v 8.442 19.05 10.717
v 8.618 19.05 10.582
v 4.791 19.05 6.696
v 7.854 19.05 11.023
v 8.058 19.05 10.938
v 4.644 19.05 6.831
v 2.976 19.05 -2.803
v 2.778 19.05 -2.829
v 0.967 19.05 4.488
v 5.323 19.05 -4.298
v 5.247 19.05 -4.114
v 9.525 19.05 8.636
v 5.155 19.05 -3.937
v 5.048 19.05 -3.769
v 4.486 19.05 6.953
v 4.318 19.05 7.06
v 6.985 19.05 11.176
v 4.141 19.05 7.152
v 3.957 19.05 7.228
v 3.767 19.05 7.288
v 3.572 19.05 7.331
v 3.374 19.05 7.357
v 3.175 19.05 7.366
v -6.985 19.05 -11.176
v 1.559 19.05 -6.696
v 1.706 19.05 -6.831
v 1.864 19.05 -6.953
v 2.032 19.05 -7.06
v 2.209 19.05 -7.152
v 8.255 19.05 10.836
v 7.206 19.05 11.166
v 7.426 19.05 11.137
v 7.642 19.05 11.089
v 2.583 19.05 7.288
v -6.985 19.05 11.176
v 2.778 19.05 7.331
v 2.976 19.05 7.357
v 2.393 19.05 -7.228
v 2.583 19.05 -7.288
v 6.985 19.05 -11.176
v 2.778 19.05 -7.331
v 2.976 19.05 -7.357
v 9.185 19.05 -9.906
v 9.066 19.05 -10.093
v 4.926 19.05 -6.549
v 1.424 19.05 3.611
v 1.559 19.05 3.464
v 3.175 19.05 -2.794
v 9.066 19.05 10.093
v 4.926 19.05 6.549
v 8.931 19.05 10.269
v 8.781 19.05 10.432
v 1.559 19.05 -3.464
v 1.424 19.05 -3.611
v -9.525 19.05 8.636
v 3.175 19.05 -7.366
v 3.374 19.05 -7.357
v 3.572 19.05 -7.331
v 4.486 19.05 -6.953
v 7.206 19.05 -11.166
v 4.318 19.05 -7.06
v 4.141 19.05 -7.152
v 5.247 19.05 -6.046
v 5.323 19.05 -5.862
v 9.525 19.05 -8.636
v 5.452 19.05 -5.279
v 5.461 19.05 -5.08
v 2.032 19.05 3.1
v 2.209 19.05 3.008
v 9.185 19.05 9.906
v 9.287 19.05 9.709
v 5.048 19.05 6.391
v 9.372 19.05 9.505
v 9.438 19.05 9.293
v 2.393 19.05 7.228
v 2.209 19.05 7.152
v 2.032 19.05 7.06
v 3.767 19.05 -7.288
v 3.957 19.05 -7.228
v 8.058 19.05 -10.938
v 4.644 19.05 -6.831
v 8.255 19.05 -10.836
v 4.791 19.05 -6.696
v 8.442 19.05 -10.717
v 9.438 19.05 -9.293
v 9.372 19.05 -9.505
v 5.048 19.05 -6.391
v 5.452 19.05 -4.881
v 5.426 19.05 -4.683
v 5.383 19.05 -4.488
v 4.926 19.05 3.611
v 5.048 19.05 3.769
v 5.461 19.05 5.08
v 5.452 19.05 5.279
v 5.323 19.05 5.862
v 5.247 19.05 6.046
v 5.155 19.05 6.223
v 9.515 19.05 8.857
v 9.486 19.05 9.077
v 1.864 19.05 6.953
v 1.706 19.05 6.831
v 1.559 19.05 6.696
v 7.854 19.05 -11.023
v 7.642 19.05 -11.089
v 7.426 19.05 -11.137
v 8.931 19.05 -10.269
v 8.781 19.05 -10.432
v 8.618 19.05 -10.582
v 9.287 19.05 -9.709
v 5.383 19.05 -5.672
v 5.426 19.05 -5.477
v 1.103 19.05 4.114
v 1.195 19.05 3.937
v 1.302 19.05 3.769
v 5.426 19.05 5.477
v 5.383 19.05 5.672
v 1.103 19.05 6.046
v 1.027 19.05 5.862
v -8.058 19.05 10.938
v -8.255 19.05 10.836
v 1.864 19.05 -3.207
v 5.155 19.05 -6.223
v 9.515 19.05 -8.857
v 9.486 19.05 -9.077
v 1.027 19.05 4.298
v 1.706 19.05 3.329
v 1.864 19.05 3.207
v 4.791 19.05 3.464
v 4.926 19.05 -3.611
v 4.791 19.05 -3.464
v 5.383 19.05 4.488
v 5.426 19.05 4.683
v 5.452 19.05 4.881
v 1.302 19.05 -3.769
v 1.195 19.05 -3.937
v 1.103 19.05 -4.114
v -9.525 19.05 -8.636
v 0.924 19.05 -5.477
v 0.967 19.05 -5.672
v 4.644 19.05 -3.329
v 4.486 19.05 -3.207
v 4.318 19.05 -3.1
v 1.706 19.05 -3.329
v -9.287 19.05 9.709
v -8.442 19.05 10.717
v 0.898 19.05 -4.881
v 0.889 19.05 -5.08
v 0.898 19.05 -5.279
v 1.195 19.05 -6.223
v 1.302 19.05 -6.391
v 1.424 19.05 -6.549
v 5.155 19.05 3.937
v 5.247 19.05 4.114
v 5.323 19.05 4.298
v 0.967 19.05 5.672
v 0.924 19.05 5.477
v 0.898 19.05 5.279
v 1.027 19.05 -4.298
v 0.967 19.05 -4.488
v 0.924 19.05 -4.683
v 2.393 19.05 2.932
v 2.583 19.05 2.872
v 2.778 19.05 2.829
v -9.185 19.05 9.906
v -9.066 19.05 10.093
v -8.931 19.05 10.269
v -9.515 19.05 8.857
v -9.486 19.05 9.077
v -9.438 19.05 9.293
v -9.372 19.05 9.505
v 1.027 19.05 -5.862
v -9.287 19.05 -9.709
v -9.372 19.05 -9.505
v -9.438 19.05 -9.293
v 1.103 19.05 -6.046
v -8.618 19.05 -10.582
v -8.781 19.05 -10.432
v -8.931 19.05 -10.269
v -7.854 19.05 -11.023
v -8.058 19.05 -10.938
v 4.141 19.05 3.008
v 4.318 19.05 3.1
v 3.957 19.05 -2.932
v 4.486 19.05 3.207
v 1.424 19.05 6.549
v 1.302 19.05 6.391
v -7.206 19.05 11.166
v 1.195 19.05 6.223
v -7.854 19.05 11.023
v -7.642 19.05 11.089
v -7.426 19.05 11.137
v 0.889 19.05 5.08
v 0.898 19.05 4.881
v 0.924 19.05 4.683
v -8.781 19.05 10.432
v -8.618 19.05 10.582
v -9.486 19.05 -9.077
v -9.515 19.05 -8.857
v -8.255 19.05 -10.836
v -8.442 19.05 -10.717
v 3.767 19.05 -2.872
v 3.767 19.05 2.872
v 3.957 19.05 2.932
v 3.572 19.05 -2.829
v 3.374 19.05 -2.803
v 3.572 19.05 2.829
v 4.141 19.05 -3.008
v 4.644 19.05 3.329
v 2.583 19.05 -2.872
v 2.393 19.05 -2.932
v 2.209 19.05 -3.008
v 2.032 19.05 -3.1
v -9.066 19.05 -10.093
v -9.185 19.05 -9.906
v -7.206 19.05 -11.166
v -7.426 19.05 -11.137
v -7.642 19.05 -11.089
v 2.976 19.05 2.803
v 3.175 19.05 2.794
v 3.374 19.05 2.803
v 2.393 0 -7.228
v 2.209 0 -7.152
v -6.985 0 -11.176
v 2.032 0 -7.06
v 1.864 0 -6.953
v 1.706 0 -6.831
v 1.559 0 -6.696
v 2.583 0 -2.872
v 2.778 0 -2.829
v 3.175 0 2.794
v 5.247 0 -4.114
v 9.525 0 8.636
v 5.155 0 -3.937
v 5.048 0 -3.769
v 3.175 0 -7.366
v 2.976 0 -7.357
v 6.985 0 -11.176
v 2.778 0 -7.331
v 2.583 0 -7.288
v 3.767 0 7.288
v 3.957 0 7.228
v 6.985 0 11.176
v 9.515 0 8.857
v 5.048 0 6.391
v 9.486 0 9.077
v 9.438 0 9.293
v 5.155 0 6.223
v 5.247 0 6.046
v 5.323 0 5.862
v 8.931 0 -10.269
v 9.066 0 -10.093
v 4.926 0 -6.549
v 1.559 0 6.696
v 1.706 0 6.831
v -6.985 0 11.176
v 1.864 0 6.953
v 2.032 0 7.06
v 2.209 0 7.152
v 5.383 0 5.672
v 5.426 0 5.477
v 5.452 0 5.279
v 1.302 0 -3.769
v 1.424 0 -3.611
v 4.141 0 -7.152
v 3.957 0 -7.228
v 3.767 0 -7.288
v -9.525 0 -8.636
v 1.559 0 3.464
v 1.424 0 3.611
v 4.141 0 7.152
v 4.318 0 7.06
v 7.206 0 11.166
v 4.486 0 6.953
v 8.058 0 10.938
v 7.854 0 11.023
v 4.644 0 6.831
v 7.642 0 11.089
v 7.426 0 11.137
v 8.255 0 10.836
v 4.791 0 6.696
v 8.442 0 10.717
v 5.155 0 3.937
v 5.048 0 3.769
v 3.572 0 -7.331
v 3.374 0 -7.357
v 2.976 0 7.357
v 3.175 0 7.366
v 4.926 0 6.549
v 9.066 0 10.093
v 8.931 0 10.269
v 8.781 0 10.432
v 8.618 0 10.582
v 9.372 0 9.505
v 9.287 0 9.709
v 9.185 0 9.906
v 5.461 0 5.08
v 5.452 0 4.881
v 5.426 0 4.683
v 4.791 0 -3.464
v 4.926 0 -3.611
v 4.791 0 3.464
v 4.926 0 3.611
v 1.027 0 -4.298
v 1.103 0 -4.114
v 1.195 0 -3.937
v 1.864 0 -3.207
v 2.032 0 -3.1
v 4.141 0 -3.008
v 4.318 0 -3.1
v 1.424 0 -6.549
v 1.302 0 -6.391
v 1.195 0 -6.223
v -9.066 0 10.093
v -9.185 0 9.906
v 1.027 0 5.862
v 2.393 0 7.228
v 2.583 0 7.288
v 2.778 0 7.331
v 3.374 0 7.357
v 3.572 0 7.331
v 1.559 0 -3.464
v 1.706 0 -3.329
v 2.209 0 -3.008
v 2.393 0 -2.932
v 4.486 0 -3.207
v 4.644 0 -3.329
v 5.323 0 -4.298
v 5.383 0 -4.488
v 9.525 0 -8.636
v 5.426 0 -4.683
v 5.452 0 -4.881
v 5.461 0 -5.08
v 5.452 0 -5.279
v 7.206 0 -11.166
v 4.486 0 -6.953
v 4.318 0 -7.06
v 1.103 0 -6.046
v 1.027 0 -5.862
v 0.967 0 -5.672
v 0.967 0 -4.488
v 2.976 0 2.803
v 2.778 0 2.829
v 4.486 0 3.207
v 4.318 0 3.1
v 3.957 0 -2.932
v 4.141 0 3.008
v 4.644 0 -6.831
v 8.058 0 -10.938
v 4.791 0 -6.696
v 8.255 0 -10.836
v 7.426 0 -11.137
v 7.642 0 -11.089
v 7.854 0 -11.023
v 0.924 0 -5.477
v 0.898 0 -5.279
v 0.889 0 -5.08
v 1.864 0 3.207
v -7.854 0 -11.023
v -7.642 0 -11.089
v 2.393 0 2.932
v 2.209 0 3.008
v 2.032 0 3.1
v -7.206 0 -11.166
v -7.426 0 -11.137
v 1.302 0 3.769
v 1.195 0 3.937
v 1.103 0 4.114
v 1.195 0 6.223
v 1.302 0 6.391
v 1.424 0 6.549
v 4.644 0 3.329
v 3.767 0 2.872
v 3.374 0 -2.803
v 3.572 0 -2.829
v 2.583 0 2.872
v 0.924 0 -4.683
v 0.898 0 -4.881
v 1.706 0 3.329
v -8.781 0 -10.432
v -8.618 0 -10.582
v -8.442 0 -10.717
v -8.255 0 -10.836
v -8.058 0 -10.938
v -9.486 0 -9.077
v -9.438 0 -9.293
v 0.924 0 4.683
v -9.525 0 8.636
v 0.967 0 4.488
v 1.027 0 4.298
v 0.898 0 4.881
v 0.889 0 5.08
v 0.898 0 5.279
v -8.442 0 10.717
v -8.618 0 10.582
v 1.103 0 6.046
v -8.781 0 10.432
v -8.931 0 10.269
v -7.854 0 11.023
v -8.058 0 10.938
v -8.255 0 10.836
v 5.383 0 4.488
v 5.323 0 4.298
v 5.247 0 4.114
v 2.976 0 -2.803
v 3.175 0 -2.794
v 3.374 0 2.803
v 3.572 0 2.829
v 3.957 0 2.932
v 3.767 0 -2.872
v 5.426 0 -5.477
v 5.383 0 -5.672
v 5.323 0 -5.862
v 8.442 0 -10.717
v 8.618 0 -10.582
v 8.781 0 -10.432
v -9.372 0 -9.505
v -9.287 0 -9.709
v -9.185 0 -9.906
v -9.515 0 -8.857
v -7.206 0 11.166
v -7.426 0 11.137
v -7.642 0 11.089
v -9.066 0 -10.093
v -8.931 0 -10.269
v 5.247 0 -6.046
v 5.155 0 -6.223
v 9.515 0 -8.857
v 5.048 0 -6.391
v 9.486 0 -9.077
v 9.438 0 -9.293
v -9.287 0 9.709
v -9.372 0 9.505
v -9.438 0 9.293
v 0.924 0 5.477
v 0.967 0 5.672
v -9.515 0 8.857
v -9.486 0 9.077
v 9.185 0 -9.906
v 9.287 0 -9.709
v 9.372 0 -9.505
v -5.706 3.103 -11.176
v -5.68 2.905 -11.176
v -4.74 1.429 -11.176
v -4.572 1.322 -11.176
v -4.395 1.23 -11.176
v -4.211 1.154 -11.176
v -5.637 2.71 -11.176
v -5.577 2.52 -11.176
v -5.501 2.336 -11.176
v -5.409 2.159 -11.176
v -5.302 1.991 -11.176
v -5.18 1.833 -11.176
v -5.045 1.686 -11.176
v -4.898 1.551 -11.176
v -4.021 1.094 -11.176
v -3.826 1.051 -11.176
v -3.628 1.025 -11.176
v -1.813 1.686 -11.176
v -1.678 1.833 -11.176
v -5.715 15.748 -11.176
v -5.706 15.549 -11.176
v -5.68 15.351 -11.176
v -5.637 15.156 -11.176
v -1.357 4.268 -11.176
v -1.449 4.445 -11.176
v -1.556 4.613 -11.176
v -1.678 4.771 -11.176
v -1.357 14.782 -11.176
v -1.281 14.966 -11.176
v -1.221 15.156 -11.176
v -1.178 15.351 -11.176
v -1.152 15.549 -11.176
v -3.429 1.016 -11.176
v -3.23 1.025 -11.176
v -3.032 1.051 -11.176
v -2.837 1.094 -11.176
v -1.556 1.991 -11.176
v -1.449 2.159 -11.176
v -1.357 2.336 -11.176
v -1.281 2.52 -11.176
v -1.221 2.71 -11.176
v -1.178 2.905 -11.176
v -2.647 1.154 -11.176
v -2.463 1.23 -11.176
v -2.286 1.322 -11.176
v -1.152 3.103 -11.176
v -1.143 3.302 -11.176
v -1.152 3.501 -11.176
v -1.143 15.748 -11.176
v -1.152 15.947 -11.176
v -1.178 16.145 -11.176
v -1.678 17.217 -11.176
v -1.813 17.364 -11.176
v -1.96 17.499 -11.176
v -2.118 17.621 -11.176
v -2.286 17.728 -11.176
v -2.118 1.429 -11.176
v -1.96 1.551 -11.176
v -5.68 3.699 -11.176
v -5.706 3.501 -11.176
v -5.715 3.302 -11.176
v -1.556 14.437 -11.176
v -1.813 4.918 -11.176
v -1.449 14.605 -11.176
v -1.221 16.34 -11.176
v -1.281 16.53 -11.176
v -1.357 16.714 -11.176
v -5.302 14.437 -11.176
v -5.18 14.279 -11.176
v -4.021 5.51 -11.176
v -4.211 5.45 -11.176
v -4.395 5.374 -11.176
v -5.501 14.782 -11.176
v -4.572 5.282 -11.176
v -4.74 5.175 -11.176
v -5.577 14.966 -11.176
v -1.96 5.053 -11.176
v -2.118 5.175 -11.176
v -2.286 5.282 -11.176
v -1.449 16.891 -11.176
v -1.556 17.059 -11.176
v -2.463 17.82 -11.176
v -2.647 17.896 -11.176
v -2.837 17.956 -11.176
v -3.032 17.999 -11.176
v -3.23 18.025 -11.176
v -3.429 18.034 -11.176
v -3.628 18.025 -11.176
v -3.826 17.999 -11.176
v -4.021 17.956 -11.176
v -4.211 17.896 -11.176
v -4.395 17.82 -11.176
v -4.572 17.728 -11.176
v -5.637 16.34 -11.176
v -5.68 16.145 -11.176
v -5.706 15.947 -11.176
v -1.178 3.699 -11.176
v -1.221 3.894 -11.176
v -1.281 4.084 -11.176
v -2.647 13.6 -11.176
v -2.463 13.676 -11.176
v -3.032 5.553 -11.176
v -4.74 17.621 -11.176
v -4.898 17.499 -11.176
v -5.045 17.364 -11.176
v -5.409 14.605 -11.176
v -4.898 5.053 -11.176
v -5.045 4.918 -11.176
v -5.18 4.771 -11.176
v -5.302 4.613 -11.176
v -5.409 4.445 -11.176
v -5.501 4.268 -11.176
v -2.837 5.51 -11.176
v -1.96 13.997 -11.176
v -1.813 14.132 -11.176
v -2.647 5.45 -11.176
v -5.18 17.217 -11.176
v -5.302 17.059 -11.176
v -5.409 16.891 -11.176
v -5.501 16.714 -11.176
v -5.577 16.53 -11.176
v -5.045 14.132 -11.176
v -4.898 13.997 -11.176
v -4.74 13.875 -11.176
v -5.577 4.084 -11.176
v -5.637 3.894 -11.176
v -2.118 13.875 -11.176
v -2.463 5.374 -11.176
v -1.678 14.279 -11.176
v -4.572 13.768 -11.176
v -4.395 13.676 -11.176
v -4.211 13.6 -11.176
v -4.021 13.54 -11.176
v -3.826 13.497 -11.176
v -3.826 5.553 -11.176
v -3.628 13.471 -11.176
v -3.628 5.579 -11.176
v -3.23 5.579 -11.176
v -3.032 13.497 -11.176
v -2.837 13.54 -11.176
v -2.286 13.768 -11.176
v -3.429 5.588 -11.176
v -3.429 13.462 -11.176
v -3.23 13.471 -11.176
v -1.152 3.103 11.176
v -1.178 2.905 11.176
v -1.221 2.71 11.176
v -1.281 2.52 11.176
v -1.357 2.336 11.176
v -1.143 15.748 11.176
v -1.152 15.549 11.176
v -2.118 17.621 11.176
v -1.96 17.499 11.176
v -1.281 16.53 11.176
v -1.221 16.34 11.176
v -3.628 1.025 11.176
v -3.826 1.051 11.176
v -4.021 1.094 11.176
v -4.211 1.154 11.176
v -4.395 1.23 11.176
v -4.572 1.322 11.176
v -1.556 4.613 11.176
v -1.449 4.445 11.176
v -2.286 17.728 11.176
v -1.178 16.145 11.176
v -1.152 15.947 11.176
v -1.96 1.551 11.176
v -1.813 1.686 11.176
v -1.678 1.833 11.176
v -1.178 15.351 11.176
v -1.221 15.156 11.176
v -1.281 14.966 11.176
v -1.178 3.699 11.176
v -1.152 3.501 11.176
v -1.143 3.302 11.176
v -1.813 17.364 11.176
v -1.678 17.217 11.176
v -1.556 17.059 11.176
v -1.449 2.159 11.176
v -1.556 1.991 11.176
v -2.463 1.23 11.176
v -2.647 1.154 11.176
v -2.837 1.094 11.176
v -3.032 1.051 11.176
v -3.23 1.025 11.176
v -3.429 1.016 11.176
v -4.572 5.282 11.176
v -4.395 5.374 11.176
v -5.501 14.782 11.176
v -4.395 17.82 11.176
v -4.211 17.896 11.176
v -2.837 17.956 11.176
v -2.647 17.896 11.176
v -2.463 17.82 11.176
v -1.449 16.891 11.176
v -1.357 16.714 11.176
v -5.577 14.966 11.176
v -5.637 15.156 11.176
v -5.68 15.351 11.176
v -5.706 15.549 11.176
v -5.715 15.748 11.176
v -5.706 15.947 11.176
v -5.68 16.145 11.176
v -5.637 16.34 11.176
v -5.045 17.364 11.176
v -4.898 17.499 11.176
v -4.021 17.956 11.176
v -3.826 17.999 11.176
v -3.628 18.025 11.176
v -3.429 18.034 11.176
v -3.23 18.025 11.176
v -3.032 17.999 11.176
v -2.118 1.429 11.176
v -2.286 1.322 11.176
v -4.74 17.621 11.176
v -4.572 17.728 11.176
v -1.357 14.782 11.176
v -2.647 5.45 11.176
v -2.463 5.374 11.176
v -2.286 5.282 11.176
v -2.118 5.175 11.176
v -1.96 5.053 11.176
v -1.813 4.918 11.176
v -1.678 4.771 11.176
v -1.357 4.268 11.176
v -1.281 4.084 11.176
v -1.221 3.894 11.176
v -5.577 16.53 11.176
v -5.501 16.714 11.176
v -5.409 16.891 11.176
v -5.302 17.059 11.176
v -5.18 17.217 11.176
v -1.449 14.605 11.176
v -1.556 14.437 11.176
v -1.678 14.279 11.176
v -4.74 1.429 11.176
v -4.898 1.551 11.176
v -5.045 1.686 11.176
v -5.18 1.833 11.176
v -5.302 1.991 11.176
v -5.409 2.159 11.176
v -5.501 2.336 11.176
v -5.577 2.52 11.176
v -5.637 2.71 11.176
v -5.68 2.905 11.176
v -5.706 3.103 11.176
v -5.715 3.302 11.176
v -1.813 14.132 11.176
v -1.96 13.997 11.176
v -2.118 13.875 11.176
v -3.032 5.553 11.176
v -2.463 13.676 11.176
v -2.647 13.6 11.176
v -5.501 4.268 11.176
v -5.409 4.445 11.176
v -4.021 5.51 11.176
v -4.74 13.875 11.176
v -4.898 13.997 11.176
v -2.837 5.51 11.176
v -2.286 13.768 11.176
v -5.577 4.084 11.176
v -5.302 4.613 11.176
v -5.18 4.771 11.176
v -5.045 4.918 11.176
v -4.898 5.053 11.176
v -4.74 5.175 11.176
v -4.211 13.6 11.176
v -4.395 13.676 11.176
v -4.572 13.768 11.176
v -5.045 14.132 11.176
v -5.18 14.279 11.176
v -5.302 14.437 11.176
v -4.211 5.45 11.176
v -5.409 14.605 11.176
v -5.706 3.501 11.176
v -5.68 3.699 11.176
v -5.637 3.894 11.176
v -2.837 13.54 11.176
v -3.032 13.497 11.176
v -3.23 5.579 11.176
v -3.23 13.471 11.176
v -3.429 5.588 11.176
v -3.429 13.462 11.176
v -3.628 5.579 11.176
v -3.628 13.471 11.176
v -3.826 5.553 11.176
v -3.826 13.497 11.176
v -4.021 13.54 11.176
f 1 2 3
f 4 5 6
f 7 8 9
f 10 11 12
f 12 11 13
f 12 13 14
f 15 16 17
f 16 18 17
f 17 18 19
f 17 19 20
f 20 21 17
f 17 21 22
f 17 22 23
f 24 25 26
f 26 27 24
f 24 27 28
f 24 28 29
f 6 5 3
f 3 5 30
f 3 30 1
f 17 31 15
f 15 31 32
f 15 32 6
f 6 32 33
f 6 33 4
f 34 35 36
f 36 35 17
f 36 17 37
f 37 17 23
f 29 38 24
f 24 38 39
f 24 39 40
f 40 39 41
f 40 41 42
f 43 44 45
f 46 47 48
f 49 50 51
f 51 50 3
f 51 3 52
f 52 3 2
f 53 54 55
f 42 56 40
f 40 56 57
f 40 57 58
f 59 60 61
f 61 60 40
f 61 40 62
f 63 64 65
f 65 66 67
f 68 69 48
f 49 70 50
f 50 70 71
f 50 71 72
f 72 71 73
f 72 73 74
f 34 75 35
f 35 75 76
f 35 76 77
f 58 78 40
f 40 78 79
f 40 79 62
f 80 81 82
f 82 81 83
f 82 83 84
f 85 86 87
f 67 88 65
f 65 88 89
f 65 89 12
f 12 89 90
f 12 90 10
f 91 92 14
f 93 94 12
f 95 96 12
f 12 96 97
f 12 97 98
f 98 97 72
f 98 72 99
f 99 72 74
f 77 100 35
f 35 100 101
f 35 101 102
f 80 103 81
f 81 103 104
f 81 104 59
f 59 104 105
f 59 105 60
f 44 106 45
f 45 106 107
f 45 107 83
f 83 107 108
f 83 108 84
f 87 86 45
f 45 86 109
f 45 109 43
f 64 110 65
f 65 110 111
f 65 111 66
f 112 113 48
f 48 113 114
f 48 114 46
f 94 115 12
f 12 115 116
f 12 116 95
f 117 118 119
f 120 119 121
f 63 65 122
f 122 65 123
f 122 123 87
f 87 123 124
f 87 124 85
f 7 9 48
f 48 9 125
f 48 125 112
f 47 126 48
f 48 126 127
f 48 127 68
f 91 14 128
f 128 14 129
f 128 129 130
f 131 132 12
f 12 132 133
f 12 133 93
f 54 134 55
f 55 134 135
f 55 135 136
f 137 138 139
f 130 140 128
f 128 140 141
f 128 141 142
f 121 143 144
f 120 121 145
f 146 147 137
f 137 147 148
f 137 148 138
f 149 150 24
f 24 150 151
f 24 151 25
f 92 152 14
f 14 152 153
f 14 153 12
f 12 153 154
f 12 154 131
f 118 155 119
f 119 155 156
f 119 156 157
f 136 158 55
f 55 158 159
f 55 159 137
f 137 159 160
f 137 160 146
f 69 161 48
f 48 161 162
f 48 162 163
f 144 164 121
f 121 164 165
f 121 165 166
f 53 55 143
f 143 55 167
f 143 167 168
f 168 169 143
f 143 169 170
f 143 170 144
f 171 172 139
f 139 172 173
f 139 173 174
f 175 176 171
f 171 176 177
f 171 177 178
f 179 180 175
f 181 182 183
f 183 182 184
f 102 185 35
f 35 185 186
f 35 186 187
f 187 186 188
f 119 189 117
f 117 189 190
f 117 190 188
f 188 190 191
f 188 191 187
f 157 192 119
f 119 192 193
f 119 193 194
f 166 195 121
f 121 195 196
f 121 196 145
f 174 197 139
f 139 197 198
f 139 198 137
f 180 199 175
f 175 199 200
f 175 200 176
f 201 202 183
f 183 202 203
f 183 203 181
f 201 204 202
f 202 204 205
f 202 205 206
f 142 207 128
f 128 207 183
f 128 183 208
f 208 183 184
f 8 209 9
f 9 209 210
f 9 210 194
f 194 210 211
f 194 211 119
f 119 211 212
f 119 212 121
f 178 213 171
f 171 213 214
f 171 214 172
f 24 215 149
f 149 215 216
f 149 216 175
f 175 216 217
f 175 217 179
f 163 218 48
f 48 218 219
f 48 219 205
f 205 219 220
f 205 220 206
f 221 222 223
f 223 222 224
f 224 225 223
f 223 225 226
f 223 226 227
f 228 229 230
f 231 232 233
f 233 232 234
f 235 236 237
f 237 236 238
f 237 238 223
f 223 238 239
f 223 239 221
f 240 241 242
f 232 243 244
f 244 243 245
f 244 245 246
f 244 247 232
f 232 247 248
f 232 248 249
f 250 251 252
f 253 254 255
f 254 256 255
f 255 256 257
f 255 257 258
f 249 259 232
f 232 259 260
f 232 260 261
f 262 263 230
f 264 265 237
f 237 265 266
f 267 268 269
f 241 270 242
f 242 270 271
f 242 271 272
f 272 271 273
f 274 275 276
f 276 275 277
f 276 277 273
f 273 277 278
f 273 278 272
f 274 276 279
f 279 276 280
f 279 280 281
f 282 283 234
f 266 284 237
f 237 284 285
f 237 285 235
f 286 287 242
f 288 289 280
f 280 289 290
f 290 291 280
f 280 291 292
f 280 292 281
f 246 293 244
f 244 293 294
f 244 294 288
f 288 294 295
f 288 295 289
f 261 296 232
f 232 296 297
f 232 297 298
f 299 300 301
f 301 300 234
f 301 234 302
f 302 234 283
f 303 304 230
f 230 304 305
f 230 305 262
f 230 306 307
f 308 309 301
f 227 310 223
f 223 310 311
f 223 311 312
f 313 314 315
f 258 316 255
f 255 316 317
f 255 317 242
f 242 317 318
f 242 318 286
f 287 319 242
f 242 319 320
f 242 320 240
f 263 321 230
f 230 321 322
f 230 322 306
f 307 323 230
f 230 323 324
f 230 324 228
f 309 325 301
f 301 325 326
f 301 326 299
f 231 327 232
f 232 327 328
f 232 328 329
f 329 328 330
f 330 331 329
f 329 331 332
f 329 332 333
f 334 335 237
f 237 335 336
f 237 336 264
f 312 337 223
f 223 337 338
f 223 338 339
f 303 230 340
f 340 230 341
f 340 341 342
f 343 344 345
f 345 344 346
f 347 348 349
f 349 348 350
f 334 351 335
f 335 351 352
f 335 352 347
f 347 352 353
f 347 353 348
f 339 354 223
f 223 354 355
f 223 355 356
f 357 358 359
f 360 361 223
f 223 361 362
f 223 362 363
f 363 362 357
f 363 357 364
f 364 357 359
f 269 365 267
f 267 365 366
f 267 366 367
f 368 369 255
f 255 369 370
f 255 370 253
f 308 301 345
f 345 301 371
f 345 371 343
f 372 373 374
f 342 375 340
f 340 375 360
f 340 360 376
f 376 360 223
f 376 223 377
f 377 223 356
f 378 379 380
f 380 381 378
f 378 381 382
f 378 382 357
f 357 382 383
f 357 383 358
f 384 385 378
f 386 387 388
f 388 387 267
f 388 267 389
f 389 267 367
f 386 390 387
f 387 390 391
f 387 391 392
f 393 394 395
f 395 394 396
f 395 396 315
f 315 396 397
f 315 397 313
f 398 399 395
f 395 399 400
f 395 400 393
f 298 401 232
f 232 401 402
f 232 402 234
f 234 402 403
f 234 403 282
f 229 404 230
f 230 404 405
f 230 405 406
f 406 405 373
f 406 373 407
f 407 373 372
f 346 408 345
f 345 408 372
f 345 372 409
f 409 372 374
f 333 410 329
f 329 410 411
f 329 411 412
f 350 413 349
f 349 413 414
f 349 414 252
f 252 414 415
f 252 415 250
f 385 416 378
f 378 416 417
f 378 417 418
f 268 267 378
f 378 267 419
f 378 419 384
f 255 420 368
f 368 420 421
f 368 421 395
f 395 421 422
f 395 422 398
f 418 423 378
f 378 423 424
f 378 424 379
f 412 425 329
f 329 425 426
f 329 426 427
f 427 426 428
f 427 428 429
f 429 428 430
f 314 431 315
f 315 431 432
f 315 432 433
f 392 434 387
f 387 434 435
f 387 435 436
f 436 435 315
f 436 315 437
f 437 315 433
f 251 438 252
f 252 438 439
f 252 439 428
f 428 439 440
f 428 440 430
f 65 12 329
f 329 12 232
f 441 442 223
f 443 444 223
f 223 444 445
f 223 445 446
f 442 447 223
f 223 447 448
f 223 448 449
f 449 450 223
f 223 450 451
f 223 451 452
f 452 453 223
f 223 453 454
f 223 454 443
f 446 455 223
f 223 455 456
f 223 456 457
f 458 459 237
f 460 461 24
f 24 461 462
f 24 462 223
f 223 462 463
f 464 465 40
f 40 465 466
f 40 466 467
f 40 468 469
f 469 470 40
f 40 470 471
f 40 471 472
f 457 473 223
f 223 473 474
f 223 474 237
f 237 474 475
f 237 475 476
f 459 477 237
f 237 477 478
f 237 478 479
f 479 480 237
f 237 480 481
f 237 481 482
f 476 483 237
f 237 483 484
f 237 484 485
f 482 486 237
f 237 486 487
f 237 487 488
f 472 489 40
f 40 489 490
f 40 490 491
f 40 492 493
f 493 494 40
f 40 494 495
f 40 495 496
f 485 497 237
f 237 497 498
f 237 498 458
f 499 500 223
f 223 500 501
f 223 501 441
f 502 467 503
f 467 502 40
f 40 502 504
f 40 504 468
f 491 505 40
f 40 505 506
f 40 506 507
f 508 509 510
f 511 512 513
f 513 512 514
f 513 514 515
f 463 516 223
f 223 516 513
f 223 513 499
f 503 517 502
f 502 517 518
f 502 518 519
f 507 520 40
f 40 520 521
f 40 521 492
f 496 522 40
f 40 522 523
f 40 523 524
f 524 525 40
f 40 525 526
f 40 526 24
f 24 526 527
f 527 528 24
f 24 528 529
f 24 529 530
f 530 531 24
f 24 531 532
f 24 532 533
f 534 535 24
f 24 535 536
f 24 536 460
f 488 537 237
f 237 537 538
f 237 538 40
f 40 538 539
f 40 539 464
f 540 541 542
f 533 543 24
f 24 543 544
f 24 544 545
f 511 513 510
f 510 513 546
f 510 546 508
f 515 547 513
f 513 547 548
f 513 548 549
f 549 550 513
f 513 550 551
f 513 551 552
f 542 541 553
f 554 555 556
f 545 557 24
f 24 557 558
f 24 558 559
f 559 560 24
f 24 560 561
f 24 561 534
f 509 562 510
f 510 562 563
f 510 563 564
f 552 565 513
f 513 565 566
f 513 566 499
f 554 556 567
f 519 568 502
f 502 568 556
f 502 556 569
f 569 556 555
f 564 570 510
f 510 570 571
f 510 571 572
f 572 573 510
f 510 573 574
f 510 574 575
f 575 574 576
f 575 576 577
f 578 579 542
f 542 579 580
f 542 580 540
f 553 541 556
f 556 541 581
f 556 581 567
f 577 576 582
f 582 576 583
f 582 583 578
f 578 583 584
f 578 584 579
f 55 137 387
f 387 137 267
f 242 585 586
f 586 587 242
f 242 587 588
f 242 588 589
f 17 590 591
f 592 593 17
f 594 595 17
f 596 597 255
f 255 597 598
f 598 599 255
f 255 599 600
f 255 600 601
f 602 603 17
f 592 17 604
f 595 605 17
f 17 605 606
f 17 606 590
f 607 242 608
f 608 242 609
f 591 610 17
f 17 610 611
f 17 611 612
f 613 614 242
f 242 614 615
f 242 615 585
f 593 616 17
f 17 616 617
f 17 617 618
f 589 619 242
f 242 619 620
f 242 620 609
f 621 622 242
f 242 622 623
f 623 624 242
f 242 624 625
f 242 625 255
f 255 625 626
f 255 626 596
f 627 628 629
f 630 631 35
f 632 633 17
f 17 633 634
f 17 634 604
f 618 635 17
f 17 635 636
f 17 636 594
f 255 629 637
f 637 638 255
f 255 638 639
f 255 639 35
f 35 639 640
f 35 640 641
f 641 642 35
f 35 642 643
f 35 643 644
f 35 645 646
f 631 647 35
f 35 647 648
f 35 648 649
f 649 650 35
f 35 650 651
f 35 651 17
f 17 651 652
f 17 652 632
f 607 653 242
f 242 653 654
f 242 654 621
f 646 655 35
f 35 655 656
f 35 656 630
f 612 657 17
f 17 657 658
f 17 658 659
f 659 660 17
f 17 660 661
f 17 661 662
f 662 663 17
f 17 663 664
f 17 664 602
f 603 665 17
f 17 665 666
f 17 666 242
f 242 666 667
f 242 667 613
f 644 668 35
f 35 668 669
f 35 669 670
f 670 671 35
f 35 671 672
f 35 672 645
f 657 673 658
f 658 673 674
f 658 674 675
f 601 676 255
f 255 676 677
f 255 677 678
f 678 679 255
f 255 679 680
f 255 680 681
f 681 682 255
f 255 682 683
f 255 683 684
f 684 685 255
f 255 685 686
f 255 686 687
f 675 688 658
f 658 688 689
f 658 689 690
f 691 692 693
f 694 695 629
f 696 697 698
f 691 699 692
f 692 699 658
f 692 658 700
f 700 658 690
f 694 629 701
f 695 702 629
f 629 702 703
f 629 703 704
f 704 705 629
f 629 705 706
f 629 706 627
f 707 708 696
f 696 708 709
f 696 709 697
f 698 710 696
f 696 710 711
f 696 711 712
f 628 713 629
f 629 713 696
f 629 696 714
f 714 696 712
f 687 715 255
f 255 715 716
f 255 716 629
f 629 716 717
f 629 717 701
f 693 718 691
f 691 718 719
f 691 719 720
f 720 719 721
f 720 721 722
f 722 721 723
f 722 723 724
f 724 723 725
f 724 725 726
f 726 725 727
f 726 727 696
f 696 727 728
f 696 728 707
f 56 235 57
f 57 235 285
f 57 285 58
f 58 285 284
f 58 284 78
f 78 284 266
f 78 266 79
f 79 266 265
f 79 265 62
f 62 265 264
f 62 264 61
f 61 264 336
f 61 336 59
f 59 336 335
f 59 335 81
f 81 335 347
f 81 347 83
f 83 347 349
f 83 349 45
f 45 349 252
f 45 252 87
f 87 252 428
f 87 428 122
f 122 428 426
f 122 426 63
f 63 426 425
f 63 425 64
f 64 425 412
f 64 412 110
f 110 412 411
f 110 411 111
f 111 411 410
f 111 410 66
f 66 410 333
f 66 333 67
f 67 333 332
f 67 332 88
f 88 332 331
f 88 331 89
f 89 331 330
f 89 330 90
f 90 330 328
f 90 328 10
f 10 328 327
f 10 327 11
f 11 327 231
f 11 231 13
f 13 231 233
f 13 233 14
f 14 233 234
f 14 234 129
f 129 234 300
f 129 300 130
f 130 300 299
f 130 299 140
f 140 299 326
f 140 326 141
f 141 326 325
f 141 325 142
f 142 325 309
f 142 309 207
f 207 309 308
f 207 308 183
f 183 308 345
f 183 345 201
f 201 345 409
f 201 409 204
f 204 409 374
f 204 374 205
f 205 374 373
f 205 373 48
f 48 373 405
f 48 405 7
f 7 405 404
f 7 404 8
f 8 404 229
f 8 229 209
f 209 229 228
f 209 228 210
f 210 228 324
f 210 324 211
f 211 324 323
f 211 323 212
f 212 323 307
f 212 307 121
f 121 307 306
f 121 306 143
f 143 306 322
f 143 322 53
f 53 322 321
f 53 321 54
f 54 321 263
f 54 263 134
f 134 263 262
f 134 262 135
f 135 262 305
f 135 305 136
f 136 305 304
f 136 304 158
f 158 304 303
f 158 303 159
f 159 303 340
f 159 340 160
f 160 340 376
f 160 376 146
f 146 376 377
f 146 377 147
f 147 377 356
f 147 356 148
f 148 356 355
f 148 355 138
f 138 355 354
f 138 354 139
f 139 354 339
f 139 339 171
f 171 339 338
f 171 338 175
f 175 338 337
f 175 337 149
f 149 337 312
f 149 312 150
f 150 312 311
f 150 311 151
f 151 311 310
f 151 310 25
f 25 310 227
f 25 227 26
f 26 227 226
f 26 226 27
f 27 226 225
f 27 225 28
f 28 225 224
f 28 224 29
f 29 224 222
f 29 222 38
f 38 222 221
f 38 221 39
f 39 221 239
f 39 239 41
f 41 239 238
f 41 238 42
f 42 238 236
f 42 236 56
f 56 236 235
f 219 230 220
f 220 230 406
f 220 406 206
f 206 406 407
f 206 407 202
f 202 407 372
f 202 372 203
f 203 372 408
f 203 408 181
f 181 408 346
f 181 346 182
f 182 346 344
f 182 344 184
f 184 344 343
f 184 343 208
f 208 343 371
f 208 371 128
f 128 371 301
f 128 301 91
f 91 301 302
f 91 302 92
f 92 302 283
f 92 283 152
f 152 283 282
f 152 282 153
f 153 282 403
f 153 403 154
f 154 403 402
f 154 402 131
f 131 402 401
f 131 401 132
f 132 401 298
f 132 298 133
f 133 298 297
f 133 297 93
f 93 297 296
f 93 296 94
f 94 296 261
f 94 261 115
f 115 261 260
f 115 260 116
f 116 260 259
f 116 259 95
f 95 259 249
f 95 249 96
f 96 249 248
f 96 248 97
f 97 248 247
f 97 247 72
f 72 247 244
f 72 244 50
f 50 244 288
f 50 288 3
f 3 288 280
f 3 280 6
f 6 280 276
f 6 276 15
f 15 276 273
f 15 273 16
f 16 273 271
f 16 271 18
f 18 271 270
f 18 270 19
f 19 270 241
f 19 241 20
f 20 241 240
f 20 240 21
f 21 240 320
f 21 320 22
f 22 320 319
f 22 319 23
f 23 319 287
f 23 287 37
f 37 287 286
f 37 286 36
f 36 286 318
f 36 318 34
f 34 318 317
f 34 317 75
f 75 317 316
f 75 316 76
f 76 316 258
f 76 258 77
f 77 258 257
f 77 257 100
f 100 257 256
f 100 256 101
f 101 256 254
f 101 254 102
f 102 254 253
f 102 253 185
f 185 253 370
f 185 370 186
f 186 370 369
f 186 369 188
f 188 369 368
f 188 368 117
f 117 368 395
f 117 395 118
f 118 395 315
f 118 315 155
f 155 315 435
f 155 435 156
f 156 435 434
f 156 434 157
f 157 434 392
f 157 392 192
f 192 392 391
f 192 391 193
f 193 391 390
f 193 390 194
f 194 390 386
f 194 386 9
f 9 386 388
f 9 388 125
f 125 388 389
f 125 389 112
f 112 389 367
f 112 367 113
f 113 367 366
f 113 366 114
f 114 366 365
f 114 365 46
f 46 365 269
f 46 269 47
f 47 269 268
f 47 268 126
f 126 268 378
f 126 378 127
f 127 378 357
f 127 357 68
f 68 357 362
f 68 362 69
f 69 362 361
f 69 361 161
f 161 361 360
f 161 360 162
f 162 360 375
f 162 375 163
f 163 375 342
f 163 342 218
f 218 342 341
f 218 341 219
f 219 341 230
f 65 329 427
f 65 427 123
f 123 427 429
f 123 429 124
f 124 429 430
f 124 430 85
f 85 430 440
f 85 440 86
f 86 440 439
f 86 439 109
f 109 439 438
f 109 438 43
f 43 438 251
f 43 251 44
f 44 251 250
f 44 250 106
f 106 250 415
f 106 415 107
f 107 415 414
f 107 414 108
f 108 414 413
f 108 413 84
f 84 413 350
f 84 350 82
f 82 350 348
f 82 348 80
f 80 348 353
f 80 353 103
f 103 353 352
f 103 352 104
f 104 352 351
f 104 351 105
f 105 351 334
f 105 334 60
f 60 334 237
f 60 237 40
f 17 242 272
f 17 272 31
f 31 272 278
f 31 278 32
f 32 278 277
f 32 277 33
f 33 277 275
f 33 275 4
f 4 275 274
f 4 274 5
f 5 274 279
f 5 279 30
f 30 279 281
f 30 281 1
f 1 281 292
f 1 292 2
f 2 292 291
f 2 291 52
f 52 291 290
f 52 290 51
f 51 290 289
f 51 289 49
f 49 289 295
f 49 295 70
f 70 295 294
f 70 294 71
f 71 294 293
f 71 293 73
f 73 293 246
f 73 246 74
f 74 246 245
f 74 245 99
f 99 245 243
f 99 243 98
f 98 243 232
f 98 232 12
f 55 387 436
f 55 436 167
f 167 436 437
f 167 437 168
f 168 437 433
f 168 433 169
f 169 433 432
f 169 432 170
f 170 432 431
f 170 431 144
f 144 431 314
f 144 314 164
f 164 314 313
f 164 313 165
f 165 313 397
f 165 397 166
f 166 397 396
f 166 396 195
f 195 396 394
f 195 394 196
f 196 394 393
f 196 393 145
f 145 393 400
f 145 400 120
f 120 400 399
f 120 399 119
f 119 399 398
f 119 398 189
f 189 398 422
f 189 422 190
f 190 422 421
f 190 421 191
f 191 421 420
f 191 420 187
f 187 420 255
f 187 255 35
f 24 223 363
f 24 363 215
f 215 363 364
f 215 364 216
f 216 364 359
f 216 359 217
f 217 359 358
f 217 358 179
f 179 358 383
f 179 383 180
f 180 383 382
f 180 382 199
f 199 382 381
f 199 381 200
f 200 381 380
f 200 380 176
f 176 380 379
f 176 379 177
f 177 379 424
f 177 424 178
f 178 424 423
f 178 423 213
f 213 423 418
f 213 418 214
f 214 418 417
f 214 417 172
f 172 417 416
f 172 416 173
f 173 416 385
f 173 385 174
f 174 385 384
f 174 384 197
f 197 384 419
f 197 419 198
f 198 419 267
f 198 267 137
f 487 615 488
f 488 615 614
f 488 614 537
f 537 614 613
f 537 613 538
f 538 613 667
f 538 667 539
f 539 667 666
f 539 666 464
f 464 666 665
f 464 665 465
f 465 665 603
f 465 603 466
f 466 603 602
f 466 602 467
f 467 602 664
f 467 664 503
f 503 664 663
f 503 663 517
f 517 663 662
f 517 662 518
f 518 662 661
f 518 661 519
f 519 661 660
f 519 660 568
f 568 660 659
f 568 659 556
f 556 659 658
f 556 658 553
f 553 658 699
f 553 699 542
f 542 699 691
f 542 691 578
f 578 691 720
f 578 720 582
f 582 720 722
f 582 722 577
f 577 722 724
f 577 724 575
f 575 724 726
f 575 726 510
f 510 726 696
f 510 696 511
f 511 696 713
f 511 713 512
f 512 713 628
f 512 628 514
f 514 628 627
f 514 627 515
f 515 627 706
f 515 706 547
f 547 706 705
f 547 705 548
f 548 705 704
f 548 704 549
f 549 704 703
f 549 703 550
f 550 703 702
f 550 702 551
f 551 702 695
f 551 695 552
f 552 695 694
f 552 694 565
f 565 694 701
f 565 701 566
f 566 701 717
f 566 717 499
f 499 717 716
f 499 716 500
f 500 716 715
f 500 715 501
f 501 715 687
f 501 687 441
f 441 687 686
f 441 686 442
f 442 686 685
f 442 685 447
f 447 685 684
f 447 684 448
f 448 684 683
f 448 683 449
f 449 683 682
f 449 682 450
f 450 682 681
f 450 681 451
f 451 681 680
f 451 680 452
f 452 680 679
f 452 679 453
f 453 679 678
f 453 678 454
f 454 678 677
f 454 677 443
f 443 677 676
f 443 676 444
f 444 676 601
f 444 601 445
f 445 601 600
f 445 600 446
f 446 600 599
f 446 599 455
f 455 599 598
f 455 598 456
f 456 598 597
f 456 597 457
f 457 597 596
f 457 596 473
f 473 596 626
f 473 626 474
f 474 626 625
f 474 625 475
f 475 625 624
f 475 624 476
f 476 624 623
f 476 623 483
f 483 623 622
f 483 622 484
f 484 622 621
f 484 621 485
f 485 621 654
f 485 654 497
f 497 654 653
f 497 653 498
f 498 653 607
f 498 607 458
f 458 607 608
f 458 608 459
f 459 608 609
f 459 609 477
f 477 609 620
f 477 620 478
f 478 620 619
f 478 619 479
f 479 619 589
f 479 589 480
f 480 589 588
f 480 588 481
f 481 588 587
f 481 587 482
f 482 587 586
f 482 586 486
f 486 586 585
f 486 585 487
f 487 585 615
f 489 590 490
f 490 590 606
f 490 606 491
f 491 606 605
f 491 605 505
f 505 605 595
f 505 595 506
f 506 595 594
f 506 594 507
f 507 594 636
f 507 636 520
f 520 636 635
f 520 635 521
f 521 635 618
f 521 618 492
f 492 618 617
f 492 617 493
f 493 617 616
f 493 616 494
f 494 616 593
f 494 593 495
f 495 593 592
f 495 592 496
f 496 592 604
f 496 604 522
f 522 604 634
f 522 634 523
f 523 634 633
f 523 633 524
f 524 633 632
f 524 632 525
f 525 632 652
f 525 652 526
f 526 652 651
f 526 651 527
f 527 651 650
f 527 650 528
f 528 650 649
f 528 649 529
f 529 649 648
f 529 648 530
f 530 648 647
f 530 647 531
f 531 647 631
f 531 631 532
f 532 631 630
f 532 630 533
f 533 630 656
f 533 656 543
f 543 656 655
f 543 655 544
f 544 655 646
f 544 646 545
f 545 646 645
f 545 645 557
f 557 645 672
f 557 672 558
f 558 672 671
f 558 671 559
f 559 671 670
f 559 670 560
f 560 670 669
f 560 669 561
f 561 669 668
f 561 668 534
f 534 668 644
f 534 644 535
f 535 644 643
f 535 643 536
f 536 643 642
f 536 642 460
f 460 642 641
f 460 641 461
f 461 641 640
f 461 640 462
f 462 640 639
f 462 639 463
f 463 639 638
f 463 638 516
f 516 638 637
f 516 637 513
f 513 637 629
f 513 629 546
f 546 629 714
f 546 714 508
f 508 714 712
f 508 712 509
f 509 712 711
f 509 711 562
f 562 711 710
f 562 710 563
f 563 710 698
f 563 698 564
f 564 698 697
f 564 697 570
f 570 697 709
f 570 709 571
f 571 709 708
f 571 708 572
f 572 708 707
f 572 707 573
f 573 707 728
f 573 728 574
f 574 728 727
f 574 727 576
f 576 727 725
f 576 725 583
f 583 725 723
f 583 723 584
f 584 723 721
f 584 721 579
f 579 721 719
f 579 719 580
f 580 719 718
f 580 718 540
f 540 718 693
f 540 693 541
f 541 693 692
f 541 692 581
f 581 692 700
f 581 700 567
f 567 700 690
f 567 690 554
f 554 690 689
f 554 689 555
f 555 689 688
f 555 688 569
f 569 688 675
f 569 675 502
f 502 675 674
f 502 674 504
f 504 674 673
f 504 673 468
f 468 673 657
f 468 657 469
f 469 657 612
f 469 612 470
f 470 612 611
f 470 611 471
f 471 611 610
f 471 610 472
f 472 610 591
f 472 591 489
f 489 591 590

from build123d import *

# Parameters (mm, degrees)
SKETCH1_W           = 19.05
SKETCH1_H           = 22.352
SKETCH1_R           = 2.286
BOSS_EXTRUDE1_DEPTH = 19.05
FILLET1_R           = 2.54
FILLET2_R           = 2.54
SKETCH2_R           = 2.286
CUT_EXTRUDE1_DEPTH  = 31.874585487


with BuildPart() as part:
    # Sketch1 → Boss-Extrude1 (new body)
    with BuildSketch(Plane(origin=(0, 0, 0), x_dir=(1, 0, 0), z_dir=(0, 1, 0))):
        Rectangle(SKETCH1_W, SKETCH1_H)
        with Locations(Location((3.175, 5.08, 0), (0, 0, 90))):
            Circle(SKETCH1_R, mode=Mode.SUBTRACT)
        with Locations(Location((3.175, -5.08, 0), (0, 0, 90))):
            Circle(SKETCH1_R, mode=Mode.SUBTRACT)
    extrude(amount=BOSS_EXTRUDE1_DEPTH)

    # Fillet1
    fillet1_edges = [part.edges().sort_by_distance(p)[0] for p in [
        (9.525, 9.525, 11.176),
        (9.525, 9.525, -11.176),
    ]]
    fillet(fillet1_edges, radius=FILLET1_R)

    # Fillet2
    fillet2_edges = [part.edges().sort_by_distance(p)[0] for p in [
        (-9.525, 9.525, 11.176),
        (-9.525, 9.525, -11.176),
    ]]
    fillet(fillet2_edges, radius=FILLET2_R)

    # Sketch2 → Cut-Extrude1 (cut, through all)
    with BuildSketch(Plane.XY.offset(11.176)):
        with Locations((-3.429, 15.748)):
            Circle(SKETCH2_R)
        with Locations(Location((-3.429, 3.302, 0), (0, 0, 180))):
            Circle(SKETCH2_R)
    extrude(amount=-CUT_EXTRUDE1_DEPTH, mode=Mode.SUBTRACT)


solid = part.part
